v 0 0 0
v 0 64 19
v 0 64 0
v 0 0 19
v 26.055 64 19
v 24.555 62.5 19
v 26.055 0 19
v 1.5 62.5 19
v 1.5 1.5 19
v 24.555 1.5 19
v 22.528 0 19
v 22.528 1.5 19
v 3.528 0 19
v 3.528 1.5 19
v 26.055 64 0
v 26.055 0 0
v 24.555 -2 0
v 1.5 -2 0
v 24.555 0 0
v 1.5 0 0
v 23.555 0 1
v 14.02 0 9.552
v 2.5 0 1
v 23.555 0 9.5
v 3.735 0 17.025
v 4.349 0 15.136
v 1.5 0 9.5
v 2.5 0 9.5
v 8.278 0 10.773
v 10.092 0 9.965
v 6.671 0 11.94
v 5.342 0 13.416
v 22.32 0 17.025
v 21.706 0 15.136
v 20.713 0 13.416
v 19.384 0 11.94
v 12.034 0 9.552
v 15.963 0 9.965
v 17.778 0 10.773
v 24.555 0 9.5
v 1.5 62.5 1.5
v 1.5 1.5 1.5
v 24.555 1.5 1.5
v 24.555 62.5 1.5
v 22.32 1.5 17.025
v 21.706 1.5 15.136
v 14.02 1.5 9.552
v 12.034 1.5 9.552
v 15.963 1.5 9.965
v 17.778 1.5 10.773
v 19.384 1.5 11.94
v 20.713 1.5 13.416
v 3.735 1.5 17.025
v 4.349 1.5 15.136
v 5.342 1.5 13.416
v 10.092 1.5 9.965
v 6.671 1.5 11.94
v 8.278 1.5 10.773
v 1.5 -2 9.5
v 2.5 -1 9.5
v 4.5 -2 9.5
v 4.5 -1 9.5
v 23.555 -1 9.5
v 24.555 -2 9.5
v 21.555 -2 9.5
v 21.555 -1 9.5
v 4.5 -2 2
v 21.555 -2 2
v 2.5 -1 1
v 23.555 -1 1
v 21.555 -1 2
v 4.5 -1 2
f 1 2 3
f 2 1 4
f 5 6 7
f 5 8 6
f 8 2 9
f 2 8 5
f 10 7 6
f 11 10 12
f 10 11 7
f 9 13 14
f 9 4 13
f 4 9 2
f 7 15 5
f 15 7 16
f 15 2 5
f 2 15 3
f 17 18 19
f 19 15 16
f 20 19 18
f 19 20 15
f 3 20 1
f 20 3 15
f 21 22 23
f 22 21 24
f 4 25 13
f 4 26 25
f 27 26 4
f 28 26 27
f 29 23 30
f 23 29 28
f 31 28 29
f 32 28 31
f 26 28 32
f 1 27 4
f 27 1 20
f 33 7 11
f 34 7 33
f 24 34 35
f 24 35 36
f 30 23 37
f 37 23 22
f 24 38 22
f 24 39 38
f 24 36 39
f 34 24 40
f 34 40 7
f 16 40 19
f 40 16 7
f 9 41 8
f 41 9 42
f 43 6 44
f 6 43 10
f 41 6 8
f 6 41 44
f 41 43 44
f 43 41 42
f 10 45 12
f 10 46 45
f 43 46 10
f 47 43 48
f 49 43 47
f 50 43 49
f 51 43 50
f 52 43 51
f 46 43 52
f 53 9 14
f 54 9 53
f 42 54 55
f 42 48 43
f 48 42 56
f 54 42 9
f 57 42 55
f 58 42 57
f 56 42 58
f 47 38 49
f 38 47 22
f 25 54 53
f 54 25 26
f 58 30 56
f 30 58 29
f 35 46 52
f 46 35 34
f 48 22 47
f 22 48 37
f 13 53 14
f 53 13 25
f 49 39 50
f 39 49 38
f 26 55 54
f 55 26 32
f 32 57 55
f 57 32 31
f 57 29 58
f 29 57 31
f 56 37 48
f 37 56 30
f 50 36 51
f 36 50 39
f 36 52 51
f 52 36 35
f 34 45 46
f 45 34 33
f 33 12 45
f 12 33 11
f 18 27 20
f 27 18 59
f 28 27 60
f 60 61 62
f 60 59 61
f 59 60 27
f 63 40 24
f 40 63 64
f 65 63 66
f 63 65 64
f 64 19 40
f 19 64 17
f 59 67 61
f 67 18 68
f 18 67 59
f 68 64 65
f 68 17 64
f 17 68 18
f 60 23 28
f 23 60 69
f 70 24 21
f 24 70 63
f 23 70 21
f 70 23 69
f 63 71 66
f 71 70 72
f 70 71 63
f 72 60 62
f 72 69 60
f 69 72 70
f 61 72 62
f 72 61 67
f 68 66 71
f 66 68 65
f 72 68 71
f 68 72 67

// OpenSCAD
module case(w,h,l,t,r,z,s) {
	w = w*s;
	h = h*0.95;
	union() {
		difference() {
			cube([w,l,h]);
			translate([t,t,t]) cube([w-2*t, l-2*t,h-t+0.001]);
			translate([w/2,t+0.5,h]) rotate([90,0,0]) cylinder(r=r,h=t+1);
		}
		difference() {
			translate([t,-z*2,0]) cube([w-2*t, z*2, h-r]);
			translate([t+z,-z,z]) cube([w-2*t-2*z, z, h-r-z+0.1]);
			translate([t+z*3,-2*z-0.005,2*z]) cube([w-2*t-6*z, z+0.01, h-r-2*z+0.1]);
		}
	}
}

case(w=27,h=20,l=64,t=1.5,r=27/2-4,z=1,s=0.965);
